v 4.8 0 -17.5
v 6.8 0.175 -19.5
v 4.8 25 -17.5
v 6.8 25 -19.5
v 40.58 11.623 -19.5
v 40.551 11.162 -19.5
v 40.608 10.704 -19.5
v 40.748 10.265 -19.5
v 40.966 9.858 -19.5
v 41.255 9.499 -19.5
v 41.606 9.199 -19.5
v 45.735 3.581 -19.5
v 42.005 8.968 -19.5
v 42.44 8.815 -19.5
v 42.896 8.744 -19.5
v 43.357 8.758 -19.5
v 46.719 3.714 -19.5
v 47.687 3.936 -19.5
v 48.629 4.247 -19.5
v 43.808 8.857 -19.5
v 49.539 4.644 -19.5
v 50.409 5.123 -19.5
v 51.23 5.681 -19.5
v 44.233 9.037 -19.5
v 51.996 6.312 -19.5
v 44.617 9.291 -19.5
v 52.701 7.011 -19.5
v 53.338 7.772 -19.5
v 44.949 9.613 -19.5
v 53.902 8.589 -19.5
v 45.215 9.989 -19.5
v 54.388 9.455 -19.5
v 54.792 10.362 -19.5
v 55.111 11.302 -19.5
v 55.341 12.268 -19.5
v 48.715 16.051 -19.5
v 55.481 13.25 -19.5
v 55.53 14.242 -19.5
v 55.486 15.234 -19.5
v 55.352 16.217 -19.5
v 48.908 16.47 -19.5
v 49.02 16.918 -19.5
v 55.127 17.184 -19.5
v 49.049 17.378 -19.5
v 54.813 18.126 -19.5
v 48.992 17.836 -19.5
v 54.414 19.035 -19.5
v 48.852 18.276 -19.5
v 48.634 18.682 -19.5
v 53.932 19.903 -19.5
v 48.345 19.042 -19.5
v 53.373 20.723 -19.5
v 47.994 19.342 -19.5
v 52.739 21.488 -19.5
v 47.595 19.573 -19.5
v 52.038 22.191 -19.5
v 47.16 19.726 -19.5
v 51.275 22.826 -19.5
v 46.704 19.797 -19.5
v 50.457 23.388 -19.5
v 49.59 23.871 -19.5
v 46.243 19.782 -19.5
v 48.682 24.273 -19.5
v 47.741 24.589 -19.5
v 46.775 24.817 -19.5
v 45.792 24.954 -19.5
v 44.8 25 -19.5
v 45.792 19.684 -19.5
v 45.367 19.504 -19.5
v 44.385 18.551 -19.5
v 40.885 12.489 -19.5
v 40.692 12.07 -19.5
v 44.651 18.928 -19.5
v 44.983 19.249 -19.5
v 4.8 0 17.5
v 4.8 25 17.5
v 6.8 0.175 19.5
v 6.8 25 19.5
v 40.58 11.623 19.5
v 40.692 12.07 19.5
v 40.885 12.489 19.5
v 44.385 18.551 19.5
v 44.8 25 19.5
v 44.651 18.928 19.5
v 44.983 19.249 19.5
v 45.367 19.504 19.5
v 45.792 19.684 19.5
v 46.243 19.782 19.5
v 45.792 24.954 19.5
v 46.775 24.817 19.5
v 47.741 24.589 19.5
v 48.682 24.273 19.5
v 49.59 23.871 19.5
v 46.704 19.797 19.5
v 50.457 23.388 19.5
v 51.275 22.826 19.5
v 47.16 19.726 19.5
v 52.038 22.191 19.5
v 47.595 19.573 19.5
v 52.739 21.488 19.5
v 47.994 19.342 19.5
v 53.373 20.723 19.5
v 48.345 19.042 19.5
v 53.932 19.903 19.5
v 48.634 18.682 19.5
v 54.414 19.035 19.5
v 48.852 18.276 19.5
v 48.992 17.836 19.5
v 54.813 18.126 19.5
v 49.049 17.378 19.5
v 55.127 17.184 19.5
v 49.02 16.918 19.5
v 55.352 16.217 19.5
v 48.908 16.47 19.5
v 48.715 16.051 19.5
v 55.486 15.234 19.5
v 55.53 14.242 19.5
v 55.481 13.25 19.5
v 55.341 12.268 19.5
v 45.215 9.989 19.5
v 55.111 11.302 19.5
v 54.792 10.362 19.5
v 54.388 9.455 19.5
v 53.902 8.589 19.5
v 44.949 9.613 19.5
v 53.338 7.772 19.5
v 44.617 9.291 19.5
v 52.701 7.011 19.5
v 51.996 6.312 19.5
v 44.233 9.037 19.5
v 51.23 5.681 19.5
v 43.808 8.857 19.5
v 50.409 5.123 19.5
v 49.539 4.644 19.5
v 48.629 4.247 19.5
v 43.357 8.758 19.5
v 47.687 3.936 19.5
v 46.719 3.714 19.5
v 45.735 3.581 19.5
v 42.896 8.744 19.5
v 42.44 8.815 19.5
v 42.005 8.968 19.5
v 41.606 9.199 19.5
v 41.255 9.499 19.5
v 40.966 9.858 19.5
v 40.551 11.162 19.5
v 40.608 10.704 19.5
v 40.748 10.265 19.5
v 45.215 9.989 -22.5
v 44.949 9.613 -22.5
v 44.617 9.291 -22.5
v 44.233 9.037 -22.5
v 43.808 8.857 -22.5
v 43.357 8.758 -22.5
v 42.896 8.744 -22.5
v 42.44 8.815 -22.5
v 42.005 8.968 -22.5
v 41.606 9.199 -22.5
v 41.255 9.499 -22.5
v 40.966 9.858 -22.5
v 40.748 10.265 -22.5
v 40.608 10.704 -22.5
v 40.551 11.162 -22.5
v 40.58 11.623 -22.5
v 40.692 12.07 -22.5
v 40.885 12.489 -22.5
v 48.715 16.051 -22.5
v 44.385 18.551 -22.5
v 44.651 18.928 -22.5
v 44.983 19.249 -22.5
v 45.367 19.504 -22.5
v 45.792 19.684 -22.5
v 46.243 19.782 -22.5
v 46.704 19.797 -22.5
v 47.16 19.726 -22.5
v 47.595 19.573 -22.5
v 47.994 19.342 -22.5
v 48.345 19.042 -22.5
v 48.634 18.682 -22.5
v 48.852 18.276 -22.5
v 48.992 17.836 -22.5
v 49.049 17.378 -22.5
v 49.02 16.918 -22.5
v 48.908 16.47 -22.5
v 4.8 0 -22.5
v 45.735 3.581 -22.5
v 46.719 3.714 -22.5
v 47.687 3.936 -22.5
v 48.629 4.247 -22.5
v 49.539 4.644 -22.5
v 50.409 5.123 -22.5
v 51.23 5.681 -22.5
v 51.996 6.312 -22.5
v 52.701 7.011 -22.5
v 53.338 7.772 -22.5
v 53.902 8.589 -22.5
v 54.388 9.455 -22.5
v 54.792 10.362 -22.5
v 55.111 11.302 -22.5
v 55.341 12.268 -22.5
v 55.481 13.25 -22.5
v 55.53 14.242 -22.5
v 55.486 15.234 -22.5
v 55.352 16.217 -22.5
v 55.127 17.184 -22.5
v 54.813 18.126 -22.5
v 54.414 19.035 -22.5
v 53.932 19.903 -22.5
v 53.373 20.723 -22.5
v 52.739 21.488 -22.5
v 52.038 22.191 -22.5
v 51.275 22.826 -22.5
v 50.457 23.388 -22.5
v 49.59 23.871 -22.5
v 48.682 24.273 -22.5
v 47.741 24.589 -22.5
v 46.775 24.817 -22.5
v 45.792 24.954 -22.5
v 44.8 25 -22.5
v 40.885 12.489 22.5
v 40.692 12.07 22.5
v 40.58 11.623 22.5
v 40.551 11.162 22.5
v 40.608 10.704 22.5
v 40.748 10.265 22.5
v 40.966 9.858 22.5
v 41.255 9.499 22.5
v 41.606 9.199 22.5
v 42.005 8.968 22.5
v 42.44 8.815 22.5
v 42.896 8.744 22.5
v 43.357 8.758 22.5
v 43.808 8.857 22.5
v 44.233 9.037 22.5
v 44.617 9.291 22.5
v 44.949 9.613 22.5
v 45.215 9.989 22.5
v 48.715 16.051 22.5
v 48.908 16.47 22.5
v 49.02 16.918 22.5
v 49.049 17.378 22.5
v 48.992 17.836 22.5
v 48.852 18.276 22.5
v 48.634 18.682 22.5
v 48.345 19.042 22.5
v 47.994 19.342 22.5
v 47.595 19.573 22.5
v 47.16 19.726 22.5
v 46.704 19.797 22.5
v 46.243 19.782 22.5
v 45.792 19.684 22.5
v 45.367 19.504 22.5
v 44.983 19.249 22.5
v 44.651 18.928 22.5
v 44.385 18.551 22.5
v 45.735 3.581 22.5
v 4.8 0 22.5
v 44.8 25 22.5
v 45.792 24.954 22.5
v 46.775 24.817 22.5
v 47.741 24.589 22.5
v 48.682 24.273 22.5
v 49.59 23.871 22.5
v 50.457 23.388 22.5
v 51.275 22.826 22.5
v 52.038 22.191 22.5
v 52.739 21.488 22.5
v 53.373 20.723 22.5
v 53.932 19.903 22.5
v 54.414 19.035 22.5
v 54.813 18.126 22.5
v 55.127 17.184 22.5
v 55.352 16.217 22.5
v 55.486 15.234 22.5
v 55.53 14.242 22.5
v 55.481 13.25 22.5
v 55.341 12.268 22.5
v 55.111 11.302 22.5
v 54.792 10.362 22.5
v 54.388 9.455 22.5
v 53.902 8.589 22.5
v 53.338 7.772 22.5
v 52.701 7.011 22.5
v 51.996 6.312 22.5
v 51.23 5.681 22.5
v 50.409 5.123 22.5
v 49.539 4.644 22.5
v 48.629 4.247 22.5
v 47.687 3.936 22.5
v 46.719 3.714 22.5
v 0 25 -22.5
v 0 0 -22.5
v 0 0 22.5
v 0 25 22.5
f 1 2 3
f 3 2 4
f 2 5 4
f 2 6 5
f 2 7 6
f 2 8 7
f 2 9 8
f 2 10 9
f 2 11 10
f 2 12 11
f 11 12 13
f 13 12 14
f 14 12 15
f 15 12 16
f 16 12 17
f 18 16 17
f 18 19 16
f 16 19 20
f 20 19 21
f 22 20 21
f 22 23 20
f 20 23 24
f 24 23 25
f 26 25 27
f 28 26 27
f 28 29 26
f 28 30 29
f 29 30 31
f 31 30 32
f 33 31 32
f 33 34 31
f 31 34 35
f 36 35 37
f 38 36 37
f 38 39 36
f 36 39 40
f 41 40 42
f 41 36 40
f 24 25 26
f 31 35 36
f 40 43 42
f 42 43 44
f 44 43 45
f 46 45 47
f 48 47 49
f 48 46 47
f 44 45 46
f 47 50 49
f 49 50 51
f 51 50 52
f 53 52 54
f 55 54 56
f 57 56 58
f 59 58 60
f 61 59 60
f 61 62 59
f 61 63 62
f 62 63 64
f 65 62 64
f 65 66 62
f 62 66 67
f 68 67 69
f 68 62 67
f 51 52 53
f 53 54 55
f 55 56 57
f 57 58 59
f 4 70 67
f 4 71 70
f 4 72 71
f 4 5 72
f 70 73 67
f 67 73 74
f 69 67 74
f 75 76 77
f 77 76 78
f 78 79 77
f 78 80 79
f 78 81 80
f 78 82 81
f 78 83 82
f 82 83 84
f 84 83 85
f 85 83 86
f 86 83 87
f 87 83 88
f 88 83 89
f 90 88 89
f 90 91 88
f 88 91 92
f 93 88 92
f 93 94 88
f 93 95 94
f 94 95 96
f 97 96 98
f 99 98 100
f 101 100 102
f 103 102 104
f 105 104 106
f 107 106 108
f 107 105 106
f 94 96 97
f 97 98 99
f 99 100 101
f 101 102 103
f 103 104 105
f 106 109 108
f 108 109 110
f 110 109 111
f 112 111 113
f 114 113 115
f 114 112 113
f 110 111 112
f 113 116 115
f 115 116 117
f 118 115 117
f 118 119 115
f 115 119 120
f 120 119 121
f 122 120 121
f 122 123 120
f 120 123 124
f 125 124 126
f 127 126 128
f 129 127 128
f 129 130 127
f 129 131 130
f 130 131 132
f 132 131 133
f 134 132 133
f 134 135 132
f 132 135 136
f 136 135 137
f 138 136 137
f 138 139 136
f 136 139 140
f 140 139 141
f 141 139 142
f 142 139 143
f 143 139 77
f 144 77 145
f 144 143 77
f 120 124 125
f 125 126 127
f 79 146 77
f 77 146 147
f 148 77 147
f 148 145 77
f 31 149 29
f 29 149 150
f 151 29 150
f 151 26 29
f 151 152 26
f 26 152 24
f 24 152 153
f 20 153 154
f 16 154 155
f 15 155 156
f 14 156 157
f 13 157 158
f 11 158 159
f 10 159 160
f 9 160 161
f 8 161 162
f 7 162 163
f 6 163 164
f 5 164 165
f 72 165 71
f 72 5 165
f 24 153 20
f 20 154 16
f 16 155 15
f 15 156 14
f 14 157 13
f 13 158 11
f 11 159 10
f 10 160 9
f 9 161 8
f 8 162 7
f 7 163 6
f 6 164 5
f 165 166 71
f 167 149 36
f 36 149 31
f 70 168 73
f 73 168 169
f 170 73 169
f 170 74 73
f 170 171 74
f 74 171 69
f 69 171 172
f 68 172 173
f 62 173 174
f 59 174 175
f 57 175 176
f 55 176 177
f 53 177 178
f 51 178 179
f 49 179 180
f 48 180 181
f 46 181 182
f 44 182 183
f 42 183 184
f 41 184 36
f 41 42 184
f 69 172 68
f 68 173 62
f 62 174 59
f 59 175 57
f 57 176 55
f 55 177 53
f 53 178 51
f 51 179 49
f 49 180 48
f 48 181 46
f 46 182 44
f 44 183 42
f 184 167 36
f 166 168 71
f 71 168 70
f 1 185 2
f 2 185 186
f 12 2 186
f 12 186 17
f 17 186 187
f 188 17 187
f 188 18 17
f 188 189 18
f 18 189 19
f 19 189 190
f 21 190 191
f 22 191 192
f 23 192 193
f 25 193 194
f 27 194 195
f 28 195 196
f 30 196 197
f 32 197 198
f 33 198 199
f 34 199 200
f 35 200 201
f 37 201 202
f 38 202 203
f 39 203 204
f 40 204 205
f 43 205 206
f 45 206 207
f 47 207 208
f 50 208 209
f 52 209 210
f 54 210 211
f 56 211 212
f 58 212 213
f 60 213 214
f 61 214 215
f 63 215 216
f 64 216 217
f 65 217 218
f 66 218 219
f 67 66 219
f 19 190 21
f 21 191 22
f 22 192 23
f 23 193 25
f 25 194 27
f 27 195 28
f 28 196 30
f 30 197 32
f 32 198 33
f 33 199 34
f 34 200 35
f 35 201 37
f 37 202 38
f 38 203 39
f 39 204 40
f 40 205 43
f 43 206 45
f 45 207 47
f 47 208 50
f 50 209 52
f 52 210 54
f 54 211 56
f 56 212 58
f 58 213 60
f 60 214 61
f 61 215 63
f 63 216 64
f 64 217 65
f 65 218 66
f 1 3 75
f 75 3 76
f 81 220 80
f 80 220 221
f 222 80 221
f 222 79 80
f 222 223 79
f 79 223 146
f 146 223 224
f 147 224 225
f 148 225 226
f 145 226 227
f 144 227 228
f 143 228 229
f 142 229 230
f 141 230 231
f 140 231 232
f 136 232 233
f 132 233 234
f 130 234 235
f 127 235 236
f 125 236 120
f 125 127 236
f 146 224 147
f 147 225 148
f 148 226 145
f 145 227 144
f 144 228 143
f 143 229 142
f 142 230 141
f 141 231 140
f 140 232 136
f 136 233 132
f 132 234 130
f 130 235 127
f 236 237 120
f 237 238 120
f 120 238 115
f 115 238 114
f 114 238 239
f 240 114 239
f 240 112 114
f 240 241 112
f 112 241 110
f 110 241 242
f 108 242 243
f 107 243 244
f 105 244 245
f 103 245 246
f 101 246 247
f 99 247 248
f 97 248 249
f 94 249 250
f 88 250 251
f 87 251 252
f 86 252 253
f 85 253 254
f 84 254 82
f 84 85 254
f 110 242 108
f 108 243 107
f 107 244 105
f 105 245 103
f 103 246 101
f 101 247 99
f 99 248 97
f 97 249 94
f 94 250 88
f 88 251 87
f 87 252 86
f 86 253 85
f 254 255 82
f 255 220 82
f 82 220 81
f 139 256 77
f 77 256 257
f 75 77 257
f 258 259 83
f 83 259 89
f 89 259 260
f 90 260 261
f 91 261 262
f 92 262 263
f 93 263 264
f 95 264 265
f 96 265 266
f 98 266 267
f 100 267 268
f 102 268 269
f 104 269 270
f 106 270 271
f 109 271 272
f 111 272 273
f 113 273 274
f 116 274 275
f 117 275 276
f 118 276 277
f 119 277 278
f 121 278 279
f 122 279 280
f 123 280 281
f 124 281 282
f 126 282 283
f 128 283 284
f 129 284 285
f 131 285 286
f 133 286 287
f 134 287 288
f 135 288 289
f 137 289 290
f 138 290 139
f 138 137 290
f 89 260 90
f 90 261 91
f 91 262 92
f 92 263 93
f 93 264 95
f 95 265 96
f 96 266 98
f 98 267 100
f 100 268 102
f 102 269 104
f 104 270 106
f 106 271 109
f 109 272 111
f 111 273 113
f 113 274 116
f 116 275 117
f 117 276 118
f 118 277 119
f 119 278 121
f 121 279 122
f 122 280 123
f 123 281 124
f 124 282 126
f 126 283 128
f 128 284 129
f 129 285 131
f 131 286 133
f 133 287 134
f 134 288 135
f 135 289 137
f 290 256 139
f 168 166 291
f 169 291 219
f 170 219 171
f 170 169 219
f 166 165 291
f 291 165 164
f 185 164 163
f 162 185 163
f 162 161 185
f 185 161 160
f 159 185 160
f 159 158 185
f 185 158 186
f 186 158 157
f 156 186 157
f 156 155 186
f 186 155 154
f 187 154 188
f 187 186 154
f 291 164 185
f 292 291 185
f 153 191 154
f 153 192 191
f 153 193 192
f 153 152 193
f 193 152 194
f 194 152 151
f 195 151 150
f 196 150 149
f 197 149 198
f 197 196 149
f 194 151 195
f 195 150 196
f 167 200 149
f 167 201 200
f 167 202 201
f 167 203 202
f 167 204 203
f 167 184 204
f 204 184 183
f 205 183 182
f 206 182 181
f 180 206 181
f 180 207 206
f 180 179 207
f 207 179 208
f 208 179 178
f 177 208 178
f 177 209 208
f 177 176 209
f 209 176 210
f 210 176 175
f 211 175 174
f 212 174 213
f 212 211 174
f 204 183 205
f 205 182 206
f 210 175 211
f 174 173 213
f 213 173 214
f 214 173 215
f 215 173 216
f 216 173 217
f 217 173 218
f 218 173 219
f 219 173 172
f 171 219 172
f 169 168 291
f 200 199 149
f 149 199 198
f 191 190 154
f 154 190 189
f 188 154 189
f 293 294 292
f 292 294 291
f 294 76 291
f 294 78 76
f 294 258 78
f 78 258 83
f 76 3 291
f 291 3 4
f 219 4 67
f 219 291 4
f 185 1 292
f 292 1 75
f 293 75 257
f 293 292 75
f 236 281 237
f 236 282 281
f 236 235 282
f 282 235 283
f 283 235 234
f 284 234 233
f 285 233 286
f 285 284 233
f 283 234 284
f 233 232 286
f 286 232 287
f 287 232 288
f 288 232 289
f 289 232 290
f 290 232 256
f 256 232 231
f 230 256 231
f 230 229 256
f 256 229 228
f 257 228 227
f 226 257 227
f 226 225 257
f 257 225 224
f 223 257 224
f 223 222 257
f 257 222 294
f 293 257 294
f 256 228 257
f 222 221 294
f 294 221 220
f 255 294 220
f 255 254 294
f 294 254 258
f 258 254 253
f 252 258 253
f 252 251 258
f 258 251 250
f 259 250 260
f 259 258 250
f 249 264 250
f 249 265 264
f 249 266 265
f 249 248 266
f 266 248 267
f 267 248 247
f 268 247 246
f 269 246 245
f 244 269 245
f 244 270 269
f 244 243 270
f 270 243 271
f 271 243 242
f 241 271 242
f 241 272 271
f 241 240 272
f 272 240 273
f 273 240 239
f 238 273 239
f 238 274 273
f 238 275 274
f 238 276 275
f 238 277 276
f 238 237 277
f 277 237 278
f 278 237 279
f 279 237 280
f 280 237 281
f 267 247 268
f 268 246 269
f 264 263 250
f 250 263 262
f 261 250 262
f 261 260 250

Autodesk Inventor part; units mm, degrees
ref_plane "YZ Plane" through (0, 0, 0) normal (1, 0, 0) x (0, 1, 0)
ref_plane "XZ Plane" through (0, 0, 0) normal (0, 1, 0) x (-1, 0, 0)
ref_plane "XY Plane" through (0, 0, 0) normal (0, 0, 1) x (1, 0, 0)
sketch "Sketch2" plane through (0, 0, 0) normal (0, 0, 1) x (1, 0, 0)
  line L0 (0, 0) -> (4.8, 0)
  line L1 (4.8, 0) -> (4.8, 25)
  line L2 (4.8, 25) -> (0, 25)
  line L3 (0, 25) -> (0, 0)
  dimension "d11" = 25
  dimension "d12" = 4.8
extrude "Extrusion2" add sketch "Sketch2" along normal mid plane 45
sketch "Sketch3" plane through (0, 0, 22.5) normal (0, 0, 1) x (1, 0, 0)
  line L0 (4.8, 0) -> (4.8, 25) projected
  line L1 (4.8, 25) -> (44.8, 25)
  line L2 (44.8, 25) -> (45.7352, 3.5814) construction
  line L3 (45.7352, 3.5814) -> (4.8, 0)
  arc A0 (45.7352, 3.5814) -> (44.8, 25) centre (44.8, 14.2703) ccw
  line L4 (46.55, 17.3014) -> (43.05, 11.2392) construction
  line L5 (44.3849, 18.5514) -> (40.8849, 12.4892)
  line L6 (45.2151, 9.9892) -> (48.7151, 16.0514)
  arc A1 (48.7151, 16.0514) -> (44.3849, 18.5514) centre (46.55, 17.3014) ccw
  arc A2 (40.8849, 12.4892) -> (45.2151, 9.9892) centre (43.05, 11.2392) ccw
  point P0 (0, 0)
  dimension "d15" = 40
  dimension "d16" = 85
  dimension "d17" = 5
  dimension "d18" = 7
  dimension "d19" = 30
extrude "Extrusion3" add sketch "Sketch3" against normal blind 3
mirror "Mirror1" about plane through (0, 0, 0) normal (0, 0, 1) of "Extrusion3"
chamfer "Chamfer1" distance 2 angle 45 2 edges at (4.8, 12.5, 19.5) (4.8, 12.5, -19.5)
properties part number "Solder Roll Support 2" material "SAE 1020"
